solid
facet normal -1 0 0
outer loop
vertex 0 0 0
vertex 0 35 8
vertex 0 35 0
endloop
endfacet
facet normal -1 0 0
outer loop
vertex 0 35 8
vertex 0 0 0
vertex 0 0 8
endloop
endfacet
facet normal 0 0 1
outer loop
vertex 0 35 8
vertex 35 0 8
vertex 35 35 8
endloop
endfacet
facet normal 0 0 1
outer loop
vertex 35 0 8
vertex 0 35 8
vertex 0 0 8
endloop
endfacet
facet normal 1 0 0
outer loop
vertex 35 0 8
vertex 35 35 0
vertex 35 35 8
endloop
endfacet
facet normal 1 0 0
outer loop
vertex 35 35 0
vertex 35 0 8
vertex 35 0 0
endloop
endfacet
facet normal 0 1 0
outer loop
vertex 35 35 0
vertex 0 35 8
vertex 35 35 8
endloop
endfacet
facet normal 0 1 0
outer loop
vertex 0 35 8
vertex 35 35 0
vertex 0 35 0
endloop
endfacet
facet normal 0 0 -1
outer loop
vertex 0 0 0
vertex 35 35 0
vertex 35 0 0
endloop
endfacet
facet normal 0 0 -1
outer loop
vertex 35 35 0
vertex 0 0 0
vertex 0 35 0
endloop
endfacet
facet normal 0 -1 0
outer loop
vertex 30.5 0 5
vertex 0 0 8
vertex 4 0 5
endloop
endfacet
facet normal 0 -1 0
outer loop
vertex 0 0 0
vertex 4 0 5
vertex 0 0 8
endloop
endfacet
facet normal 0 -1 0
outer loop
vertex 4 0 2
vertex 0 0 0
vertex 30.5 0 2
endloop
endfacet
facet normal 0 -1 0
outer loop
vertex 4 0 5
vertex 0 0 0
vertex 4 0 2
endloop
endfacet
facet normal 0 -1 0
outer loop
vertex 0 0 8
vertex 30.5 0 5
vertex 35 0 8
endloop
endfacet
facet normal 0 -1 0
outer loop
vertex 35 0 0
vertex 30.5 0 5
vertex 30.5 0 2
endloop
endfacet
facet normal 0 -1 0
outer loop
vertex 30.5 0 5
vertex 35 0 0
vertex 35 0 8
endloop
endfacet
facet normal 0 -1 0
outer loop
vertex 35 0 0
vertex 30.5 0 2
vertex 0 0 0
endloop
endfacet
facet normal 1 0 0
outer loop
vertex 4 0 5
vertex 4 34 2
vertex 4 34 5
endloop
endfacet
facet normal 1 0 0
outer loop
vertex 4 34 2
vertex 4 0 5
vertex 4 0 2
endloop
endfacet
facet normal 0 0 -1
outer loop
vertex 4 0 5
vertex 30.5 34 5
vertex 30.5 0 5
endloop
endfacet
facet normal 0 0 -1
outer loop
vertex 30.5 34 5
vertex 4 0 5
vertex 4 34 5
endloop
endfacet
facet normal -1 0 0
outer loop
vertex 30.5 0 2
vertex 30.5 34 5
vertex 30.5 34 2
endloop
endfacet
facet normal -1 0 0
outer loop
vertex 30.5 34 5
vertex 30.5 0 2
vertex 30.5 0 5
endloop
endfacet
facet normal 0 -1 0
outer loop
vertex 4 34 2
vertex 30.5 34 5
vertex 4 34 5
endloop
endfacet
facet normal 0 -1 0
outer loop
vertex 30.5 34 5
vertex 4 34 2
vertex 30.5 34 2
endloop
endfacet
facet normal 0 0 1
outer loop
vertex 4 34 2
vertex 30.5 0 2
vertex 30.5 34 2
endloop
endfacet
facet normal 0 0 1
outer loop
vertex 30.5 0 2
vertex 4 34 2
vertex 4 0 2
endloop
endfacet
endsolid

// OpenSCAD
difference(){
    cube([35,35,8]);
    translate([4,-1,2]){
        cube([26.5,35,3]);
    }
}
